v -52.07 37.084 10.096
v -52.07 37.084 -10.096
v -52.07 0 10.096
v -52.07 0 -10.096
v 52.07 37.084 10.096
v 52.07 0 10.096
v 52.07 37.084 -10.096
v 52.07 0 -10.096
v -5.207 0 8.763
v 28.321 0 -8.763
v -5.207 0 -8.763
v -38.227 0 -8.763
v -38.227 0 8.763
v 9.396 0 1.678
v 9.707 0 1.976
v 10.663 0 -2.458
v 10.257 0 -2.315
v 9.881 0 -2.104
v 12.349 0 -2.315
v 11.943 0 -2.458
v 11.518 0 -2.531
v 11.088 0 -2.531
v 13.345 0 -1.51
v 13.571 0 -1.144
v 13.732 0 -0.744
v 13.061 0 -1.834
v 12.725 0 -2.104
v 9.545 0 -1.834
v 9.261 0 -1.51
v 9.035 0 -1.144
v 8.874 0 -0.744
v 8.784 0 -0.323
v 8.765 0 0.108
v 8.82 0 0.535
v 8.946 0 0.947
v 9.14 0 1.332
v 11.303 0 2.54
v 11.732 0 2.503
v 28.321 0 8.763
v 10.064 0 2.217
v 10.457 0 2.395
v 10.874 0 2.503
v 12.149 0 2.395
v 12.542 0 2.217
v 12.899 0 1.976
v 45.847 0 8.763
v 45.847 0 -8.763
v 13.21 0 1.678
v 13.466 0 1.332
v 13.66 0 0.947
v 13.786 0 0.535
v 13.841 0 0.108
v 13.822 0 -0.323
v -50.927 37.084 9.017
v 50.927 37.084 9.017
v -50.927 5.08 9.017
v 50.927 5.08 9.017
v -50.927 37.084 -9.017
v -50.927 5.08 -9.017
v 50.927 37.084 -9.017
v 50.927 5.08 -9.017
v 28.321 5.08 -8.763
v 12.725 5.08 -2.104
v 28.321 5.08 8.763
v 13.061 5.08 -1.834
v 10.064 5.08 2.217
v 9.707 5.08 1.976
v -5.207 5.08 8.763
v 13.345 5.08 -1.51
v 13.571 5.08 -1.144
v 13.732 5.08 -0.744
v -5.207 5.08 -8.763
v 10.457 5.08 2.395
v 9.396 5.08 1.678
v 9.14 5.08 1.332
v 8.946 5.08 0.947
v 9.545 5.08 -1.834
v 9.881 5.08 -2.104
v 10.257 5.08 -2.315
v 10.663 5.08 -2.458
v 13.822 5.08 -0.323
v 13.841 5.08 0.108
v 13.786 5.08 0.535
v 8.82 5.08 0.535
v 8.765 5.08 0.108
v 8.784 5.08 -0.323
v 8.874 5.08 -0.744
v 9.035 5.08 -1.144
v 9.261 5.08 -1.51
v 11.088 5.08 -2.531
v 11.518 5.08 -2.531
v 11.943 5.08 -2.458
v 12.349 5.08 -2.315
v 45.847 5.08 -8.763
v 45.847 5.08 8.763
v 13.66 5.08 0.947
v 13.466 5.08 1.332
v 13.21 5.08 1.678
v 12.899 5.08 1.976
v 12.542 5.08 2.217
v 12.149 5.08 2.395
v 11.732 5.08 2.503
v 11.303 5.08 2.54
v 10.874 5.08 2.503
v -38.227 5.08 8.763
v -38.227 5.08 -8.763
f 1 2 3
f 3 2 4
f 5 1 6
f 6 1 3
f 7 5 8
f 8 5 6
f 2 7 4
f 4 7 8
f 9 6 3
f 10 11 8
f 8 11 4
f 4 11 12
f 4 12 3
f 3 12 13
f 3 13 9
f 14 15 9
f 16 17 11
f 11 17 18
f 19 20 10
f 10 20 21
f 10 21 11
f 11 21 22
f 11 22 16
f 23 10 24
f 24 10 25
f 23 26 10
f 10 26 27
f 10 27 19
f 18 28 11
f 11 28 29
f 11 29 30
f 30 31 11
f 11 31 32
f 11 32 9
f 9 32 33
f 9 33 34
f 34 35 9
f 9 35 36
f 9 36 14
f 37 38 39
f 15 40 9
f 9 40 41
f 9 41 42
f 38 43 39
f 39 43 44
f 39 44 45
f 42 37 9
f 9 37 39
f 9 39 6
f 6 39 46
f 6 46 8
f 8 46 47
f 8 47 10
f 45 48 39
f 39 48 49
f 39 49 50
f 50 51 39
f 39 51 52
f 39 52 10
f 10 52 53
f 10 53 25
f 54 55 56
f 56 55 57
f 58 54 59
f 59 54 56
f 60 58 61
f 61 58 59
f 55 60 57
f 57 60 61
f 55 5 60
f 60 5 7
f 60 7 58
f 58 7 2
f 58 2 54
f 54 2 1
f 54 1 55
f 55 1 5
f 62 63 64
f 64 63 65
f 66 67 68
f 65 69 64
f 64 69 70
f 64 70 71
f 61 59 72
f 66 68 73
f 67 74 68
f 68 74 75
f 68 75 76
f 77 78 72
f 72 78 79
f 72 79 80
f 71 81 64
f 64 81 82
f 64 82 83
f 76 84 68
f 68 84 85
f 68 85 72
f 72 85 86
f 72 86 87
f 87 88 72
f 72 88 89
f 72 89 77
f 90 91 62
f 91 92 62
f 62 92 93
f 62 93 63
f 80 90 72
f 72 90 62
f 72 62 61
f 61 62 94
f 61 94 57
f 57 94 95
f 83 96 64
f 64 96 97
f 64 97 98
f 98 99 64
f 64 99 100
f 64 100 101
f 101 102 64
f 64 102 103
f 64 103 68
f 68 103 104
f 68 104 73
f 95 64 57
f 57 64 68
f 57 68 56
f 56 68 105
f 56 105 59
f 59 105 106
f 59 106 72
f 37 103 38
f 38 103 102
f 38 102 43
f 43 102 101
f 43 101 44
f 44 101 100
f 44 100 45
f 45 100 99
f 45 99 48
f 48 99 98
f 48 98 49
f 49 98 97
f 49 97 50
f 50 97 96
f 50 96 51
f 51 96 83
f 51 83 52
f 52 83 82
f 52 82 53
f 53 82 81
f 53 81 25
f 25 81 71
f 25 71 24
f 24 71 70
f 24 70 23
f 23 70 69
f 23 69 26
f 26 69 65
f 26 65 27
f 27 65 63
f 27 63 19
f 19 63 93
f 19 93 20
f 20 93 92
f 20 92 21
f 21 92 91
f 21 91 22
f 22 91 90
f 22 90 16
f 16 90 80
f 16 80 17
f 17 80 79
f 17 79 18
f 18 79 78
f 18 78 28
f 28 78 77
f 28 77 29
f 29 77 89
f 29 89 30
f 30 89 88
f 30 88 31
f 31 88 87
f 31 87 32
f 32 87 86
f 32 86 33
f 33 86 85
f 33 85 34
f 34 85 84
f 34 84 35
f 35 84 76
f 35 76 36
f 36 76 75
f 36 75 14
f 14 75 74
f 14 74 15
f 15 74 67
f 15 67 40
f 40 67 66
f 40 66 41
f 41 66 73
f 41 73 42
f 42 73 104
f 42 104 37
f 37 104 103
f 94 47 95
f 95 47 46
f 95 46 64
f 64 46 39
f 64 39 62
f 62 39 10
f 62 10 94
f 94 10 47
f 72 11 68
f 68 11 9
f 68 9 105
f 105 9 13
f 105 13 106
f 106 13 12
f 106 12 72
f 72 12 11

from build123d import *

# Parameters (mm, degrees)
SKETCH1_W           = 104.14
SKETCH1_H           = 20.193
BOSS_EXTRUDE1_DEPTH = 5.08
SKETCH2_W           = 104.14
SKETCH2_H           = 20.193
SKETCH2_W_2         = 101.854
SKETCH2_H_2         = 18.034
BOSS_EXTRUDE2_DEPTH = 32.004
SKETCH3_R           = 2.54
SKETCH3_W           = 33.02
SKETCH3_H           = 17.526
SKETCH3_W_2         = 17.526
CUT_EXTRUDE1_DEPTH  = 32.004


with BuildPart() as part:
    # Sketch1 → Boss-Extrude1 (new body)
    with BuildSketch(Plane(origin=(0, 0, 0), x_dir=(1, 0, 0), z_dir=(0, 1, 0))):
        Rectangle(SKETCH1_W, SKETCH1_H)
    extrude(amount=BOSS_EXTRUDE1_DEPTH)

    # Sketch2 → Boss-Extrude2 (add)
    with BuildSketch(Plane(origin=(0, 5.08, 0), x_dir=(1, 0, 0), z_dir=(0, 1, 0))):
        Rectangle(SKETCH2_W, SKETCH2_H)
        Rectangle(SKETCH2_W_2, SKETCH2_H_2, mode=Mode.SUBTRACT)
    extrude(amount=BOSS_EXTRUDE2_DEPTH)

    # Sketch3 → Cut-Extrude1 (cut)
    with BuildSketch(Plane(origin=(0, 5.08, 0), x_dir=(1, 0, 0), z_dir=(0, 1, 0))):
        with Locations(Location((11.303, 0, 0), (0, 0, 270))):
            Circle(SKETCH3_R)
        with Locations((-21.717, 0)):
            Rectangle(SKETCH3_W, SKETCH3_H)
        with Locations((37.084, 0)):
            Rectangle(SKETCH3_W_2, SKETCH3_H)
    extrude(amount=-CUT_EXTRUDE1_DEPTH, mode=Mode.SUBTRACT)


solid = part.part
